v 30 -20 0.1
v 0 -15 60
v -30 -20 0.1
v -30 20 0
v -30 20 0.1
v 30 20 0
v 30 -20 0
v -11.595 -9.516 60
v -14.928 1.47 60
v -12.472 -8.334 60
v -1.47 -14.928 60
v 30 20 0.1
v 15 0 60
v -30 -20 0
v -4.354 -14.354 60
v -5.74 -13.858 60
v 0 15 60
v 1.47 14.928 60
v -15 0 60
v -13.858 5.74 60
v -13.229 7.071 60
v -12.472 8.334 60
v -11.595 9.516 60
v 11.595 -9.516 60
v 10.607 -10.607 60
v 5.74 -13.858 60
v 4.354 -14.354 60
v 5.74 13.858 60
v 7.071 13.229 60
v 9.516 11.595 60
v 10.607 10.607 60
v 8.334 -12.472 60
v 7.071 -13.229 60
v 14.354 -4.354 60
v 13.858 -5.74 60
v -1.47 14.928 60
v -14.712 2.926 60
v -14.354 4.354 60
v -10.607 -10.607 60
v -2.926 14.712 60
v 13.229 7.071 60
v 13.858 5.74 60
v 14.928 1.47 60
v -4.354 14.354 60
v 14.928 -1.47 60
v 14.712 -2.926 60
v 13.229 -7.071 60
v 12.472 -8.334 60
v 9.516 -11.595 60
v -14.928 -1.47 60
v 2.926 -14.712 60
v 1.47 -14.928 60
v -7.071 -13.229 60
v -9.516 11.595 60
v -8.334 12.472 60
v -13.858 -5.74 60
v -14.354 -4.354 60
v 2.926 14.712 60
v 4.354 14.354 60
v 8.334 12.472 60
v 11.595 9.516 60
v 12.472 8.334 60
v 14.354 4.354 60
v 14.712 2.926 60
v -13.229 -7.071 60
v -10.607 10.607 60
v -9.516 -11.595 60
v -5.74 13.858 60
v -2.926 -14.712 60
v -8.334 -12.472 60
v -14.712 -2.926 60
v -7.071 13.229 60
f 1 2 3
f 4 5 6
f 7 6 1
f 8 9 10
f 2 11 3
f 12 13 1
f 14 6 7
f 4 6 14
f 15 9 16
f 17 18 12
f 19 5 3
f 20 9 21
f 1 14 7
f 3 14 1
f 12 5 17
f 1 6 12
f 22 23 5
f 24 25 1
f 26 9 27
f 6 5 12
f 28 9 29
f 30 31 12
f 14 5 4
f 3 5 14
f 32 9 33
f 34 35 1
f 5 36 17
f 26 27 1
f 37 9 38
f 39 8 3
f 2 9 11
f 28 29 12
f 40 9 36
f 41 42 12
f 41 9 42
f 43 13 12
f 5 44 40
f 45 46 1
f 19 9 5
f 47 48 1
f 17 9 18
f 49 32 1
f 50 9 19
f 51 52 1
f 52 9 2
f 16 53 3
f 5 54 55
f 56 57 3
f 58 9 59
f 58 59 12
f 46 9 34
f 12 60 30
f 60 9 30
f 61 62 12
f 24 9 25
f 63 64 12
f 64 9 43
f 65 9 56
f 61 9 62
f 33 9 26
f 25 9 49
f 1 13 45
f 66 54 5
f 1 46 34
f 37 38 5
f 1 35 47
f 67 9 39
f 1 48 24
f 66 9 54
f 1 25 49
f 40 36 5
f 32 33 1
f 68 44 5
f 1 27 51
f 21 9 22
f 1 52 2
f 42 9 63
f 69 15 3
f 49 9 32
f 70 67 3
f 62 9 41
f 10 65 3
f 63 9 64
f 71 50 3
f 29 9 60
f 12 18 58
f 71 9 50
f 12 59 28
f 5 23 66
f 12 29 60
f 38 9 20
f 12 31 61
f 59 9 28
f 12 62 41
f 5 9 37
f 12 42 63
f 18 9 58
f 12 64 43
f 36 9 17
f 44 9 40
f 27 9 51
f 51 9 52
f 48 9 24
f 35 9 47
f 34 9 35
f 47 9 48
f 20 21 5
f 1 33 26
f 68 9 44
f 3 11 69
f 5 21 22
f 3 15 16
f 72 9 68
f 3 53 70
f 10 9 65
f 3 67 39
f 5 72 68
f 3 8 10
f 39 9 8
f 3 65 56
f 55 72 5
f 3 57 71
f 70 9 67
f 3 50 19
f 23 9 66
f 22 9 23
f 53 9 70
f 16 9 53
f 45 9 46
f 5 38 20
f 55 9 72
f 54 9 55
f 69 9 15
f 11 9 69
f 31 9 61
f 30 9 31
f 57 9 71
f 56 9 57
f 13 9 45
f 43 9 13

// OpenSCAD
/* doodle-meta {"version":1,"parameters":{"width":{"label":"Base Width","description":"Width of the rectangular base along X","unit":"mm","feature":"base_width"},"depth":{"label":"Base Depth","description":"Depth of the rectangular base along Y","unit":"mm","feature":"base_depth"},"height":{"label":"Height","description":"Total height of the transition piece","unit":"mm","feature":"height"},"top_diameter":{"label":"Top Diameter","description":"Diameter of the circular top face","unit":"mm","feature":"top_circle"}},"features":{"base_width":{"kind":"dimension","axis":"x","label":"Base Width"},"base_depth":{"kind":"dimension","axis":"y","label":"Base Depth"},"height":{"kind":"dimension","axis":"z","label":"Height"},"top_circle":{"kind":"region","label":"Top Circle","min":[15,15,60],"max":[45,25,60]}}} */

// Parameters
width = 60;
depth = 40;
height = 60;
top_diameter = 30;

// Derived parameters
top_radius = top_diameter / 2;
base_radius_x = width / 2;
base_radius_y = depth / 2;

// Module for the lofted transition piece
module transition_piece() {
    // Define the number of segments for the circular top
    $fn = 64;
    
    // Define the number of layers for the loft
    layers = 20;
    
    // Generate the lofted solid by stacking scaled cylinders
    // We use a union of many thin cylinders to approximate the ruled surface loft
    // from a rectangle to a circle.
    
    // To ensure watertightness and smoothness, we interpolate the shape.
    // The base is a rectangle (width x depth). The top is a circle (diameter).
    // A simple linear interpolation of the "radius" in X and Y directions 
    // from the rectangle corners to the circle radius creates the transition.
    
    // However, standard OpenSCAD doesn't have a native loft. 
    // We approximate it by stacking polygons.
    
    // Let's define the bottom polygon (rectangle) and top polygon (circle).
    // We will create a series of intermediate polygons.
    
    // Bottom rectangle vertices (centered at 0,0)
    // Top circle vertices (centered at 0,0)
    
    // We will use a loop to create slices.
    // For each slice at height z, we interpolate the shape.
    
    // The shape at height z is a superellipse-like transition or simply 
    // interpolating the vertices of the rectangle and circle.
    // A common approach for rect-to-circle is to interpolate the "radius" 
    // function. 
    
    // Let's use a simpler approach: 
    // Create a cylinder for the top part and a pyramid-like structure for the bottom?
    // No, the spec says "lofted surface connecting bottom rectangle to top circle".
    
    // We will construct the solid by unioning many thin slices.
    // Each slice is a polygon.
    
    // Define the number of points for the circle
    n_points = 64;
    
    // Function to get the radius at a given angle for the rectangle
    // This is tricky. A rectangle isn't a function of angle easily.
    // Instead, let's interpolate between the rectangle and circle shapes.
    
    // A better way in OpenSCAD for this specific shape is to use 
    // convex hull of the bottom rectangle and top circle.
    // But convex hull of a rect and circle centered on top of each other 
    // creates a shape that bulges out. 
    // The spec says "straight sides". 
    // A convex hull of the bottom rectangle (at z=0) and top circle (at z=height) 
    // creates a solid with straight edges connecting the vertices of the 
    // bottom rectangle to the vertices of the top circle.
    // This matches "straight sides" and "lofted".
    
    // Let's verify the geometry.
    // Bottom: Rectangle 60x40 at Z=0.
    // Top: Circle D=30 at Z=60.
    // Convex hull of these two sets of points.
    
    // The convex hull will connect the corners of the rectangle to the 
    // tangent points of the circle. This creates a smooth transition 
    // with straight generators (lines).
    
    // Let's implement this using convex_hull().
    
    // We need to define the points for the bottom rectangle and top circle.
    
    // Bottom rectangle points (4 corners)
    // Top circle points (many points for smoothness)
    
    // We will create a module that generates the points and hulls them.
    
    // Note: convex_hull in OpenSCAD works on a set of points.
    
    // Let's generate the points.
    
    // Bottom rectangle corners
    // (-width/2, -depth/2, 0)
    // (width/2, -depth/2, 0)
    // (width/2, depth/2, 0)
    // (-width/2, depth/2, 0)
    
    // Top circle points
    // (r*cos(theta), r*sin(theta), height)
    
    // We need to pass these points to convex_hull.
    // Since we can't assign geometry to variables, we use a module 
    // that constructs the points list and calls convex_hull.
    
    // However, convex_hull takes a list of points.
    // We can construct this list using a loop.
    
    // Let's define the points list.
    
    // Number of points on the circle
    n_circle = 64;
    
    // We will build the list of points.
    // In OpenSCAD, we can use a recursive function or a loop to build a list.
    
    // Let's use a helper module to generate the points and hull them.
    
    // Actually, we can just use the convex_hull module directly if we 
    // can generate the points.
    
    // Let's try a different approach: 
    // Use `hull()` which is similar to convex_hull but works on modules.
    // hull() { bottom_shape(); top_shape(); }
    
    // bottom_shape() is a cube (rectangle) at Z=0.
    // top_shape() is a cylinder (circle) at Z=height.
    
    // hull() {
    //     translate([0,0,0]) cube([width, depth, 0.01], center=true);
    //     translate([0,0,height]) cylinder(h=0.01, r=top_radius, center=true);
    // }
    
    // This creates a solid that is the convex hull of the two shapes.
    // This matches the "straight sides" description perfectly.
    
    // Let's refine the parameters.
    // The bottom is a rectangle 60x40.
    // The top is a circle D=30.
    // Height is 60.
    
    // We need to ensure the part sits on Z=0.
    // The cube should be from Z=0 to Z=epsilon.
    // The cylinder should be from Z=height-epsilon to Z=height.
    
    // Let's use a small epsilon for the thickness of the caps to ensure 
    // the hull works correctly.
    
    epsilon = 0.1;
    
    hull() {
        // Bottom rectangle
        translate([0, 0, epsilon/2]) 
            cube([width, depth, epsilon], center=true);
        
        // Top circle
        translate([0, 0, height - epsilon/2]) 
            cylinder(h=epsilon, r=top_radius, center=true);
    }
}

// Instantiate the design
transition_piece();
